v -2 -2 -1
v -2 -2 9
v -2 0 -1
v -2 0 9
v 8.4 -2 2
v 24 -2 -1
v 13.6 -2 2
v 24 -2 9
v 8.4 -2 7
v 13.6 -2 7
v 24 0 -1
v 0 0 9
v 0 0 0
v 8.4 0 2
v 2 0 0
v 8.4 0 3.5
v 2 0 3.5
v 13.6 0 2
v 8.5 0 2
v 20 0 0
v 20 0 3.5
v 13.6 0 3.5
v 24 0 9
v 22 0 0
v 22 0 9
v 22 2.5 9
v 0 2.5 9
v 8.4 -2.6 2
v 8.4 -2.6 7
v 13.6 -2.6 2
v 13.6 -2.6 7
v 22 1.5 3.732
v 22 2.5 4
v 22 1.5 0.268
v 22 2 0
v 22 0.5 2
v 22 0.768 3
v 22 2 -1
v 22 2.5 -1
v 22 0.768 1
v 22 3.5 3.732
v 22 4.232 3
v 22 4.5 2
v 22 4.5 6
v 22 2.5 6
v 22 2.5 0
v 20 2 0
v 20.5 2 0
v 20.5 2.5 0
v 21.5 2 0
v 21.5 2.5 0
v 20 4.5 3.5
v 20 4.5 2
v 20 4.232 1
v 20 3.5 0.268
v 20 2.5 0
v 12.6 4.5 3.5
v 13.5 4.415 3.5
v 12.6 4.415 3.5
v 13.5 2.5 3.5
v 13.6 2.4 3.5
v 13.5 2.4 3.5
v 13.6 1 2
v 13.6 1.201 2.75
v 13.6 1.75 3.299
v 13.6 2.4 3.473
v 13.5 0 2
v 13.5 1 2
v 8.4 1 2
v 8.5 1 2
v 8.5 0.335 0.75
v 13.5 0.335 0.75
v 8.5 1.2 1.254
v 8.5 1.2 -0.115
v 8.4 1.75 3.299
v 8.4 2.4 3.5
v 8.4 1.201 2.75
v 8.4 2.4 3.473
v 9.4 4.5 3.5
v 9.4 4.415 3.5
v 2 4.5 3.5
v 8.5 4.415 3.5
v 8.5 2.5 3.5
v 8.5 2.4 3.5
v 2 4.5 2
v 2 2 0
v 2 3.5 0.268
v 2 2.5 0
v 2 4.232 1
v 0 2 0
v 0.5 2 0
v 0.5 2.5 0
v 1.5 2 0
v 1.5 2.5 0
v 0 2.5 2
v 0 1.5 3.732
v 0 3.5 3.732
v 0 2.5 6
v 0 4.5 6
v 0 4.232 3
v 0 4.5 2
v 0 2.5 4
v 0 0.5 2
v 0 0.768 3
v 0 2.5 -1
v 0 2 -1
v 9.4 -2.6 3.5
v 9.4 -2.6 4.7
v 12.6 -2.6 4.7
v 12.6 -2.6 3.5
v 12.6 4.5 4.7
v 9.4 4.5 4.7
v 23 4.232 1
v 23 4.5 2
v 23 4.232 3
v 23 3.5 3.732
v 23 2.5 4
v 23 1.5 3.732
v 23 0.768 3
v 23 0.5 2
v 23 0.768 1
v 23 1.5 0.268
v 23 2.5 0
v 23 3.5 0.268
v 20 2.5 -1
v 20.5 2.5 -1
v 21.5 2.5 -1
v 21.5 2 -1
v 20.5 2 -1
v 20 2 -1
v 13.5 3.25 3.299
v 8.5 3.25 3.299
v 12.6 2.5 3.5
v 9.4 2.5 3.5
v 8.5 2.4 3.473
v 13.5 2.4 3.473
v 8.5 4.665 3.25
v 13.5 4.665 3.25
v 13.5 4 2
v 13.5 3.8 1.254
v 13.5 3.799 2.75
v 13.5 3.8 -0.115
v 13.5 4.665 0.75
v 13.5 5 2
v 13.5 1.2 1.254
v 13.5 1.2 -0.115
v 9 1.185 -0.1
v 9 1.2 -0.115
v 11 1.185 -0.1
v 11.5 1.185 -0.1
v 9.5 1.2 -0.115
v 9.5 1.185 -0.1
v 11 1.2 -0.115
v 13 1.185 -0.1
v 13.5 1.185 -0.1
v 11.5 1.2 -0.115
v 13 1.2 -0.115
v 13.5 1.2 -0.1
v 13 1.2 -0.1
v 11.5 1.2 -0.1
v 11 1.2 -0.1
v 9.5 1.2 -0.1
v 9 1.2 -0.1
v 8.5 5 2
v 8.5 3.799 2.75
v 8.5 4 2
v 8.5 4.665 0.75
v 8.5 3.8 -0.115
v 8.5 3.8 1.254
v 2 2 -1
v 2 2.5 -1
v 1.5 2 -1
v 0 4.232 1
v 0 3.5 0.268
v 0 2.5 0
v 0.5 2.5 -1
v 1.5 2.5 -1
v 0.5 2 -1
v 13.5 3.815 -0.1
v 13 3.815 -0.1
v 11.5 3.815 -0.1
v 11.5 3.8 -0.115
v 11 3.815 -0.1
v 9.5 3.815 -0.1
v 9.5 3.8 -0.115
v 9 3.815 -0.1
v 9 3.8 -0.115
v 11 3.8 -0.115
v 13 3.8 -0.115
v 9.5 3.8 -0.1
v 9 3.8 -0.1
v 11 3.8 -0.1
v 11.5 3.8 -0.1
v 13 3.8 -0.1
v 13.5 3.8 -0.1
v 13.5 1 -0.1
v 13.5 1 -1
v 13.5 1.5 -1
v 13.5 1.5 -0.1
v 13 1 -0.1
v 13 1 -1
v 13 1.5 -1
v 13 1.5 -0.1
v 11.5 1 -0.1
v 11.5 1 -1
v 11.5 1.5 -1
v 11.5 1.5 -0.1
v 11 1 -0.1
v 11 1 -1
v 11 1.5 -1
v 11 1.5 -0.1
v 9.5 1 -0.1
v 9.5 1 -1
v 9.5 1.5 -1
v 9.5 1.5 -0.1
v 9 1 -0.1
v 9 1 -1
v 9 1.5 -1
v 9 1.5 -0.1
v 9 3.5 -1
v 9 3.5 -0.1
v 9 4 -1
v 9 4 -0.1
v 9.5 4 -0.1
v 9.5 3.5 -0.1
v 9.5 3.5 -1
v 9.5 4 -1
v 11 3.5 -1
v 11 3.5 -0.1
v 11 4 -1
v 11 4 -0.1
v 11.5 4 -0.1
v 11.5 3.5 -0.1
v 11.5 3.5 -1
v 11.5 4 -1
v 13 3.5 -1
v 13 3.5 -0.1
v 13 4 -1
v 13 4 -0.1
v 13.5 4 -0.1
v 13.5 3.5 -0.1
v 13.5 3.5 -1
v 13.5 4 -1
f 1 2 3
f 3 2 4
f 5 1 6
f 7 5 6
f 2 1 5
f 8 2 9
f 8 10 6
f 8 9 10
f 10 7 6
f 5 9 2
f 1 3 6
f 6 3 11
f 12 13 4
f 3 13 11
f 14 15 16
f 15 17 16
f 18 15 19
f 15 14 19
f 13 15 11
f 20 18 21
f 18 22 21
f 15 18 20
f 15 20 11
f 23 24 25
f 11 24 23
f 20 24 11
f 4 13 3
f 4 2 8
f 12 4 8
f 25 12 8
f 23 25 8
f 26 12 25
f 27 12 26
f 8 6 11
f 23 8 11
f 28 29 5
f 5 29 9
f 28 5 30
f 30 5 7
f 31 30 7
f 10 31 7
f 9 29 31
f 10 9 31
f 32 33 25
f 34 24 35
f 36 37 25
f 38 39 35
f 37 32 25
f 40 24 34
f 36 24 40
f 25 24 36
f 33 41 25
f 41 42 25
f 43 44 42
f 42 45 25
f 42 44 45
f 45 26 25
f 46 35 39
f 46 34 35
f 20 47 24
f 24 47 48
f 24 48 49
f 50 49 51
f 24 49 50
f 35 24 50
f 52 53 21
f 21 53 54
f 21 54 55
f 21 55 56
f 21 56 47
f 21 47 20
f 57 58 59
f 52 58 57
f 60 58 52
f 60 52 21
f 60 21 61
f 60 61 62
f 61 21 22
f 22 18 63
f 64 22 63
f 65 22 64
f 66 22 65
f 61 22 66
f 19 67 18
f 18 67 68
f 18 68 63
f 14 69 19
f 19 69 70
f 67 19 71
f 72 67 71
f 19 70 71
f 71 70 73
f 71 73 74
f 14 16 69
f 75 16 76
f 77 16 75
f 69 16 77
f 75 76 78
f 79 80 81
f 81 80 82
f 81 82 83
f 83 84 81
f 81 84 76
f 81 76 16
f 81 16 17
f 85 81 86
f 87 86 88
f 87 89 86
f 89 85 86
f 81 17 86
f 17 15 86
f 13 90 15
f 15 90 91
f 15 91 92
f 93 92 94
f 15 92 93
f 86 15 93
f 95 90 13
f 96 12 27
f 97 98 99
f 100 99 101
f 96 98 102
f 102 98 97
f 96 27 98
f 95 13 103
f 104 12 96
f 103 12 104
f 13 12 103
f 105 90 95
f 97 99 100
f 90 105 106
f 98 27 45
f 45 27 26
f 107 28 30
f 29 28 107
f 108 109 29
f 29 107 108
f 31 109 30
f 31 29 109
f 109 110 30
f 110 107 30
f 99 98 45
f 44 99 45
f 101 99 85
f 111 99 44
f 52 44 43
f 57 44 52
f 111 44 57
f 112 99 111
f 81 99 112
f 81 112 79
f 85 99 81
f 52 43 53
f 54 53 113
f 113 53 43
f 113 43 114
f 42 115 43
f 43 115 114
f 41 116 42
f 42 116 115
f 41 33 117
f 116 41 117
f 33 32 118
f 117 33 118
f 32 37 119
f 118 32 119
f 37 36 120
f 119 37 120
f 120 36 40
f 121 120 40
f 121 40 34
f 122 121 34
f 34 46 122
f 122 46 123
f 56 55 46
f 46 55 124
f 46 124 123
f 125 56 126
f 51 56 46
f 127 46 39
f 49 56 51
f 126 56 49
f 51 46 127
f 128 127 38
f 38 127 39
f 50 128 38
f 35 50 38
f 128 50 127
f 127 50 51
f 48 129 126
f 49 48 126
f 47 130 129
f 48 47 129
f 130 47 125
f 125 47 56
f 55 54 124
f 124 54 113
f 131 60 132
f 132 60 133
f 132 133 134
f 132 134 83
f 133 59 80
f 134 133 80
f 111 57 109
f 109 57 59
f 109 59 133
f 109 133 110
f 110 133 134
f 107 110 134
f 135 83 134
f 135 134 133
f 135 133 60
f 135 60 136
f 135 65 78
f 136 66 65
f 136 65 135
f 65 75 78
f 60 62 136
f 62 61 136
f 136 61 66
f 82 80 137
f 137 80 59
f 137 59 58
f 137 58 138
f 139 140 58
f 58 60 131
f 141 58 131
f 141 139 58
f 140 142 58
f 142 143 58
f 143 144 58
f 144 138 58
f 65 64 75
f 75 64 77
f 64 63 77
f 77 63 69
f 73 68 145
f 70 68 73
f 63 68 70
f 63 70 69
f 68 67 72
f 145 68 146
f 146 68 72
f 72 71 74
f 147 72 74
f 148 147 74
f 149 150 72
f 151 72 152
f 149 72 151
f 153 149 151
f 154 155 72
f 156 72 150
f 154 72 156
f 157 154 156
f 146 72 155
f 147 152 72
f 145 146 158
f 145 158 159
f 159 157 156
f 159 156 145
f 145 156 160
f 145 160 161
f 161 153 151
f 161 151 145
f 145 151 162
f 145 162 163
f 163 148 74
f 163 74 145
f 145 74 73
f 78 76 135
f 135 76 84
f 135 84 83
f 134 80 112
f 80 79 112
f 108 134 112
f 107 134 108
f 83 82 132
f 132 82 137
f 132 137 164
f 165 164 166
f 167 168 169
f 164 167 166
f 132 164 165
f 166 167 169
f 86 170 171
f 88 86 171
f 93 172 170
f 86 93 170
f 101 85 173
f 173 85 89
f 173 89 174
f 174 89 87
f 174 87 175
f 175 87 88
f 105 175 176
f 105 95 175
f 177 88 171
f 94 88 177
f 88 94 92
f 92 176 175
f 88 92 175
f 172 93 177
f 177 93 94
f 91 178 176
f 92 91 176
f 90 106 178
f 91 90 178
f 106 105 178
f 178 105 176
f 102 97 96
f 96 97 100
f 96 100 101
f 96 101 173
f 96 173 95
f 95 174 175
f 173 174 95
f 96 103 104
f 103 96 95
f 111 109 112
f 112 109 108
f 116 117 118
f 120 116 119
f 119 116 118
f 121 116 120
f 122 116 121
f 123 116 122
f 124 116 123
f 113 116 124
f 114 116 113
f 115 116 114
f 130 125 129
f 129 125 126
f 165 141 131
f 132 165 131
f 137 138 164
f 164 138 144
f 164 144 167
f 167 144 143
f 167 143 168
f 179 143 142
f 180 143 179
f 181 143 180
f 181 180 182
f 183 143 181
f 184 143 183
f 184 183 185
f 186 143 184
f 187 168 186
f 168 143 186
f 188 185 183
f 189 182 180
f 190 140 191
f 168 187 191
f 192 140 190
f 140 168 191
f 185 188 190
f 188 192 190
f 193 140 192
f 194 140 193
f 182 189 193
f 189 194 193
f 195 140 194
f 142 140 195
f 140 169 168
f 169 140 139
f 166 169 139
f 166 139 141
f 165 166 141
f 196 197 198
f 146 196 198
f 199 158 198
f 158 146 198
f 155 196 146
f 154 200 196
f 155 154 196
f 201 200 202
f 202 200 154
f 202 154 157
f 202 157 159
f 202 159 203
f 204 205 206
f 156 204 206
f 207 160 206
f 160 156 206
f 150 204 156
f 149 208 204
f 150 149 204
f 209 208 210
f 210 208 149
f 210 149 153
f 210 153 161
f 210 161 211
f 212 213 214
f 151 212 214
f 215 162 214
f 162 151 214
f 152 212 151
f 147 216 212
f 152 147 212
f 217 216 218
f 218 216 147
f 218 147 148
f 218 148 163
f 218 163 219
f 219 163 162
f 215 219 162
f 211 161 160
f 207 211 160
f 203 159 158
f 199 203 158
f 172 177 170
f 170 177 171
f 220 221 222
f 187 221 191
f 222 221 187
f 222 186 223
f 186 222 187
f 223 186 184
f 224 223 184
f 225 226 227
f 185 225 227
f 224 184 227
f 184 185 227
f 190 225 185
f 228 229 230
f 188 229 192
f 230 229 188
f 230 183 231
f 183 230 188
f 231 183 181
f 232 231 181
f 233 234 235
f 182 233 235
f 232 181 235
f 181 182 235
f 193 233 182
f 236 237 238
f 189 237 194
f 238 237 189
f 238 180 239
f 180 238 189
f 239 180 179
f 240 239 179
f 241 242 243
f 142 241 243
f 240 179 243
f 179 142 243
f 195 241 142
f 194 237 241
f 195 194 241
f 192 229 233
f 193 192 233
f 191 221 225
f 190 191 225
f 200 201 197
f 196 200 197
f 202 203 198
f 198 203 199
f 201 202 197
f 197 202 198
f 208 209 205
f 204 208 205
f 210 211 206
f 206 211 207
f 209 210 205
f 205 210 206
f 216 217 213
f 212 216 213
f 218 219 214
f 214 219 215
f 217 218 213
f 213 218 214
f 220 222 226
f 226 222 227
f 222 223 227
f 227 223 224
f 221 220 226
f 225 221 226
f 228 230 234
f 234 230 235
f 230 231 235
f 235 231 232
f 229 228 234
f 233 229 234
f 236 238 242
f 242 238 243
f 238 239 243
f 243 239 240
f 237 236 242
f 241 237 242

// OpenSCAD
quality=0;//=1

$fs=(quality==1)?0.01:0.1;
$fa=(quality==1)?5:30;

module cabin_wall()
{
thickness=2.0;
translate([-2,-thickness,-1]) cube([26,thickness,10]);
}

module link_hole()
{
  translate([22/2-3/2-0.1,-2.6,3.5]) cube([3.2,10.0,1.2]);
}

module bar()
{
rotate([0,90,0])
  translate([-2.0,2.5,2])
    cylinder(r=1.5,h=18);
}

//base
difference()
{
  //cube([22,6,9]);//base limits
  union()
  {//shaped base
    cube([22,2.5,9]);
    translate([0,2.5,2.0])
      rotate([0,90,0])
        cylinder(r=2.0,h=23);
    translate([0,2.0,2]) cube([22,2.5,4]);
  }//shaped base
  translate([2,0,0]) cube([18,6,3.5]);
  //link
  link_hole();
}//base

//hook
radius=2.5;//radius hook
size=3.0-0.4;//hook opening
difference()
{
  //hook
  union()
  {//shaped base
    translate([22/2-5/2,2.5,2.0])
      rotate([0,90,0])
        cylinder(r=radius,h=5);
    translate([22/2-5/2-0.1,-2.6,2]) cube([5.2,5.0,5]);//filling hook to base
  }
  //opening
//translate([22/2-5/2-0.1,-2.6,-2.6]) cube([5.2,5.0,5]);//front
translate([22/2-5/2-0.1,2.5-size/2.0,-2.7]) cube([5.2,size,5]);//middle
//translate([22/2-5/2-0.1,2.6,-2.6]) cube([5.2,5.0,5]);//rear
  //drilling
  bar();
  //link
  link_hole();
}

//support
tmp=0.5;
z=-1;
//hook support
h=0.9;
for (y= [1 : 2.5 : 3.5] )
  for (x= [9 : 2 : 14] )
    translate([x,y,z]) cube([tmp,tmp,h]);
//base support
hh=1;
for (y= [2 : 2.5 : 3.5] )
  for (x= [0, 1.5,  20, 21.5] )
    translate([x,y,z]) cube([tmp,tmp,hh]);

difference()
{
  cabin_wall();
  //link
  link_hole();
}//base
//bar();
